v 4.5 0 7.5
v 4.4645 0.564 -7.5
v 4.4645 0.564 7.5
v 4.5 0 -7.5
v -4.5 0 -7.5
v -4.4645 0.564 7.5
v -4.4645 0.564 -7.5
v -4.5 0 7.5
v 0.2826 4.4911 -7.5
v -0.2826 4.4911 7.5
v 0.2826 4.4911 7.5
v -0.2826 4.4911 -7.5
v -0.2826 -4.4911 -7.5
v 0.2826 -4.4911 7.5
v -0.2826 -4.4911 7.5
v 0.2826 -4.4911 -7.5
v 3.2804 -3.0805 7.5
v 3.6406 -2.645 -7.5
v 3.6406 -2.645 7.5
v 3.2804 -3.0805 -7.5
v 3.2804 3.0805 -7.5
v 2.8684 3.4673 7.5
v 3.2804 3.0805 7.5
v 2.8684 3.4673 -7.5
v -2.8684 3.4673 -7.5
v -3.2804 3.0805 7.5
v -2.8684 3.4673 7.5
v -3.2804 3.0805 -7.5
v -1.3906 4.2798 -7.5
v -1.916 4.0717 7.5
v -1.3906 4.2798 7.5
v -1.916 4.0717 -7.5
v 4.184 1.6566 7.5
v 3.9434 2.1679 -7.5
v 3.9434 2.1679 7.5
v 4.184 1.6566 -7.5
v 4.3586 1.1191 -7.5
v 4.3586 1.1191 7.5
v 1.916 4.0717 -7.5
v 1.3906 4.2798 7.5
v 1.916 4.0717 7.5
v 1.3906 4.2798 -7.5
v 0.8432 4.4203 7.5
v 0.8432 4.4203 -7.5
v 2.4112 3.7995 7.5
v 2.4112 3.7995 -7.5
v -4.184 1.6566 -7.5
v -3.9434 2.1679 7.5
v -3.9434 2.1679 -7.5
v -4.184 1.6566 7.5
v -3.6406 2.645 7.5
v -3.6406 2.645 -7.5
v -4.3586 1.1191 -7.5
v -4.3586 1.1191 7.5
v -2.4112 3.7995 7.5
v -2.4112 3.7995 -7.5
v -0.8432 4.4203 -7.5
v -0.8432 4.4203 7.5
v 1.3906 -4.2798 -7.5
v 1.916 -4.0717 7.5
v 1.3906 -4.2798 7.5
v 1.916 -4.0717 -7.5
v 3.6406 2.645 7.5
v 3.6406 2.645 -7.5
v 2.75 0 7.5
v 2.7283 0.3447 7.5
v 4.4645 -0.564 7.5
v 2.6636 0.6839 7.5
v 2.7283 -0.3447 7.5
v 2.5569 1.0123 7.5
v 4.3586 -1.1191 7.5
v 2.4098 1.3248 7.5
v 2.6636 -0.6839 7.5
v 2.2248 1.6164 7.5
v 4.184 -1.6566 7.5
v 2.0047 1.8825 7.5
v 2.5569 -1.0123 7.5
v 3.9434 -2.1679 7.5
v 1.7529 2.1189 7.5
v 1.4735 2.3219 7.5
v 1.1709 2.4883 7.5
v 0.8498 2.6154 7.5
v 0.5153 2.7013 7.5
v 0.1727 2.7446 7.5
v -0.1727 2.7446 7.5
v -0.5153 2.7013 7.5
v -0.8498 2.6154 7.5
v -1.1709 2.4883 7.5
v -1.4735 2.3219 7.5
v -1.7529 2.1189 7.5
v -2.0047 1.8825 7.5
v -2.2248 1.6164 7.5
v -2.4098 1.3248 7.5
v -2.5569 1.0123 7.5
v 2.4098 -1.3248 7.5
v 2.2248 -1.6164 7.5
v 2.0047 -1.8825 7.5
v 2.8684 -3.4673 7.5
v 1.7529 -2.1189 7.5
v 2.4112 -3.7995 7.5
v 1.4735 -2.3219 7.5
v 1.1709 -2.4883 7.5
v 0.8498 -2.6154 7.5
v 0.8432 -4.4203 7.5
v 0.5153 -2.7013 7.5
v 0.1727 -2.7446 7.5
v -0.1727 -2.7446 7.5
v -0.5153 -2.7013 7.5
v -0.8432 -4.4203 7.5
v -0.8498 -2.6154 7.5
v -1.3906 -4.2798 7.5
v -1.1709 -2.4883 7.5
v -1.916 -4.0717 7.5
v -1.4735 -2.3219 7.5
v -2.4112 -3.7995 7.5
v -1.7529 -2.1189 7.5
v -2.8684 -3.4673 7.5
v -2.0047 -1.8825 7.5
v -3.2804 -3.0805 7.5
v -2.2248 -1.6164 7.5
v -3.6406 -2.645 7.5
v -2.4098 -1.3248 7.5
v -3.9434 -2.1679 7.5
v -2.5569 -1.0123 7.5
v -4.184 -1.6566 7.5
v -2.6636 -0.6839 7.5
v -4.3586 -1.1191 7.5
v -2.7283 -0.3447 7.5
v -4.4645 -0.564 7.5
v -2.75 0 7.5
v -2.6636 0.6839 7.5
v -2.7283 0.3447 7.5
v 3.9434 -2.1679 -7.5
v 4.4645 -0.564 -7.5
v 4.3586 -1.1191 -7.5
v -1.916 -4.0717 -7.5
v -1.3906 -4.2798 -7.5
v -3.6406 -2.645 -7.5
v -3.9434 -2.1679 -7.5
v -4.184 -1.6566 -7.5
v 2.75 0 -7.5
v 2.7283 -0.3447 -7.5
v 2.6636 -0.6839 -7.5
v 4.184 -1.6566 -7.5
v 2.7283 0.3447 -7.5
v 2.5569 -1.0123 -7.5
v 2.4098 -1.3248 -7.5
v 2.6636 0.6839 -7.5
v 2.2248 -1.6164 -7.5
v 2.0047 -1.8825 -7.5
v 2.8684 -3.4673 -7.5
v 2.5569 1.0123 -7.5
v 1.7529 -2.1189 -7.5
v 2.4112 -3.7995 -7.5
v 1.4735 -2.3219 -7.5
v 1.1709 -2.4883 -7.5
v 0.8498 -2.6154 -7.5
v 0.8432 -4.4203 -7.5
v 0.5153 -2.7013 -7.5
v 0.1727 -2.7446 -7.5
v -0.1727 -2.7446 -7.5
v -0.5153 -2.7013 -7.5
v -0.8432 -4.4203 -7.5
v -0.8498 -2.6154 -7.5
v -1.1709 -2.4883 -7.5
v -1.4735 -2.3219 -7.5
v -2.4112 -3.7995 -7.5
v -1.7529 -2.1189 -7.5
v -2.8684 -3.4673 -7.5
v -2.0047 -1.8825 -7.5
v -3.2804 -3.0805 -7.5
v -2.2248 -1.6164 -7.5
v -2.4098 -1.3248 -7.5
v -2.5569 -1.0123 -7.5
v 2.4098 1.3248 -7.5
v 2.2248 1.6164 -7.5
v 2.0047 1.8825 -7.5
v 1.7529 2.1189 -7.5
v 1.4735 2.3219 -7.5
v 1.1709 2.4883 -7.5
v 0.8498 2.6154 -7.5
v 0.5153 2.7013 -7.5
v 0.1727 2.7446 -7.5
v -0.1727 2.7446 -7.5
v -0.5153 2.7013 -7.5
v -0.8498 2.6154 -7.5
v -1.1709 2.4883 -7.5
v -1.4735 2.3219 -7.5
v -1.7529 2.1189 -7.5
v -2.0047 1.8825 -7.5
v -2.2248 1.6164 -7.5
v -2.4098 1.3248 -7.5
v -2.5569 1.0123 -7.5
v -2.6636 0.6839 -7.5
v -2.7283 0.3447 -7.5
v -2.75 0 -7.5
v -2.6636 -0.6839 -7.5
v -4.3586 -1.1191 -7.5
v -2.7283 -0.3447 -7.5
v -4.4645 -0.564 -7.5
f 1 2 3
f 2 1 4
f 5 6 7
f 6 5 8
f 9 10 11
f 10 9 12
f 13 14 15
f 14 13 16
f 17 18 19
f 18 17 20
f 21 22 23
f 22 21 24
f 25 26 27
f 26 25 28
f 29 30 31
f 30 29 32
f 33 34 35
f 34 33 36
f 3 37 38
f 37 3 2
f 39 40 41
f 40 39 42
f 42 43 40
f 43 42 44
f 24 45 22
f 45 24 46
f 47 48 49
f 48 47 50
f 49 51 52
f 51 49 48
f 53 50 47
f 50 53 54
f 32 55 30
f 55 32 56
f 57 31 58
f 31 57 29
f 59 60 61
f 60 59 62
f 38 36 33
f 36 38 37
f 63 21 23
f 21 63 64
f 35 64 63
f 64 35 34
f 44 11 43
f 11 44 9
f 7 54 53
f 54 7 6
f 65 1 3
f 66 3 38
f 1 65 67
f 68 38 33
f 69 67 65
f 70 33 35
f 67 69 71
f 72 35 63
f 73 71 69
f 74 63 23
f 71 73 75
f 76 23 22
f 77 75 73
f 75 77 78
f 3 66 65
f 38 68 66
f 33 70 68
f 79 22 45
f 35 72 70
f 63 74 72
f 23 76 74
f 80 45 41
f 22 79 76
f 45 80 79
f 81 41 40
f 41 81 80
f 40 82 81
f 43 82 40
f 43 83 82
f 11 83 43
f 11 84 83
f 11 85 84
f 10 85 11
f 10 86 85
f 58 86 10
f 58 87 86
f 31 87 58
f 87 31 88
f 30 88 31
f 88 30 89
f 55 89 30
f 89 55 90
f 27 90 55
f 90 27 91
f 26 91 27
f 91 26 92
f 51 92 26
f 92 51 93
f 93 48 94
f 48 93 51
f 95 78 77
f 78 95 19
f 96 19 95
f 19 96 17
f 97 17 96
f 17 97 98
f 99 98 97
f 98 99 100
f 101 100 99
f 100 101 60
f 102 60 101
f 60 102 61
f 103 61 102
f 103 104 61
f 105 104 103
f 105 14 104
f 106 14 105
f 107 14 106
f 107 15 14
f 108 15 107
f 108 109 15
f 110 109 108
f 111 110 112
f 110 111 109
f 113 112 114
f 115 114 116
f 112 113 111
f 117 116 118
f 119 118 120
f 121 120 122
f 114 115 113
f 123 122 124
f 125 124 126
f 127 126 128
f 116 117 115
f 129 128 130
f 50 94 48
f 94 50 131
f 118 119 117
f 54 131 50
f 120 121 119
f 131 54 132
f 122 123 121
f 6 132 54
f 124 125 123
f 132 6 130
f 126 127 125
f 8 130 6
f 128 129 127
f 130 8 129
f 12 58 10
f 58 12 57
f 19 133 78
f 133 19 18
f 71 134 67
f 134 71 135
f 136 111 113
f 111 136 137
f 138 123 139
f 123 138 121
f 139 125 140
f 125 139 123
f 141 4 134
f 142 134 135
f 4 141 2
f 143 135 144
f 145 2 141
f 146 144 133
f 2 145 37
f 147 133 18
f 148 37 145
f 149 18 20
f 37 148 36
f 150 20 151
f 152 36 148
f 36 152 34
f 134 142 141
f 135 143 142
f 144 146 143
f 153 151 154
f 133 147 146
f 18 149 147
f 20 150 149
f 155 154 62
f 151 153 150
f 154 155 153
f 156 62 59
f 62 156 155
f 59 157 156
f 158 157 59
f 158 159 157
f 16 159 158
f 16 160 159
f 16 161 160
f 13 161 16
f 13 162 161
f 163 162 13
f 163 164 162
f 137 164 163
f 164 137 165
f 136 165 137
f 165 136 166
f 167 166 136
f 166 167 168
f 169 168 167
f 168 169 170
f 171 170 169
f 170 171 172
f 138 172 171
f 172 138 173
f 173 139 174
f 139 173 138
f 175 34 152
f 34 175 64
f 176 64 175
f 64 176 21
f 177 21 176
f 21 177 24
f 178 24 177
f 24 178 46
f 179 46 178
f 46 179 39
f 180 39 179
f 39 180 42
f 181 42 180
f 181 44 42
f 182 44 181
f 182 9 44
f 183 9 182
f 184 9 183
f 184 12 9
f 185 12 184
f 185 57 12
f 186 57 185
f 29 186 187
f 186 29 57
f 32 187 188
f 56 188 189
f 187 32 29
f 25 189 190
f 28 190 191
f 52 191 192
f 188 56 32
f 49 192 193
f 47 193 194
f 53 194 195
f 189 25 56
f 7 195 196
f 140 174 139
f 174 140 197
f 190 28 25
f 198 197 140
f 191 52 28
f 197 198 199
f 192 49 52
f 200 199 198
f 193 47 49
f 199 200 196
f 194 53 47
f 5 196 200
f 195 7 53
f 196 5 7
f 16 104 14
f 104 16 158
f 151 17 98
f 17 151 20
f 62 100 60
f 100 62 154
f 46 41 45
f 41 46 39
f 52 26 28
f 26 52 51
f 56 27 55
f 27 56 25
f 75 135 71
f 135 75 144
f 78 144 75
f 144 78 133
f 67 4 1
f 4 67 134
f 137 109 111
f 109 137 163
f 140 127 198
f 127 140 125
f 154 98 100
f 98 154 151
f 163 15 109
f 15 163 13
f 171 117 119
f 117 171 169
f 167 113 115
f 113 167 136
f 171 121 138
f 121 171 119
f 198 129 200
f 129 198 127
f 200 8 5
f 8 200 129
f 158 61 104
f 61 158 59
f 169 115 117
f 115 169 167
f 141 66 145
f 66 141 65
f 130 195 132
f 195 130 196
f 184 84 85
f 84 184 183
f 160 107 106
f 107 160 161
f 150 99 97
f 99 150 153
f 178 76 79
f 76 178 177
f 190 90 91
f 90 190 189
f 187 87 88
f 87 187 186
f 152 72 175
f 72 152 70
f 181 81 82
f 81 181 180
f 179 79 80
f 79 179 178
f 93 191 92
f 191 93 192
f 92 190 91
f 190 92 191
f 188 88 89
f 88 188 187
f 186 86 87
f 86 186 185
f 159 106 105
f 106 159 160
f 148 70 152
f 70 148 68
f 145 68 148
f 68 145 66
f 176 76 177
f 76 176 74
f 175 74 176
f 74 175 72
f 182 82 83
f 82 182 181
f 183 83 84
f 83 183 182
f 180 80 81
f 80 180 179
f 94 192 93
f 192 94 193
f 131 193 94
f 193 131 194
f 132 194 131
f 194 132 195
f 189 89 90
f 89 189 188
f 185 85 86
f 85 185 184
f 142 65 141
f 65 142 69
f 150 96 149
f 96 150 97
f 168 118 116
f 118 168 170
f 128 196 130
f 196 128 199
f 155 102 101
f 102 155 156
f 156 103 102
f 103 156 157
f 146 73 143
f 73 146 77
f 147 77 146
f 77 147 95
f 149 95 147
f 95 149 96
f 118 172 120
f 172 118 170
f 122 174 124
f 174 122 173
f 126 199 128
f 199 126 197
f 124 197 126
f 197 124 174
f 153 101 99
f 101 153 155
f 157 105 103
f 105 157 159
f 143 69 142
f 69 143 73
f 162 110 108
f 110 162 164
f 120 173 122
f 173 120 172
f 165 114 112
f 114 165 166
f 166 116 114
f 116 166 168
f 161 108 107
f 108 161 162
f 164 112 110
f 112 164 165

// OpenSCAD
$fn = 50;


difference() {
	union() {
		translate(v = [0, 0, -7.5000000000]) {
			cylinder(h = 15, r = 4.5000000000);
		}
	}
	union() {
		translate(v = [0, 0, -100.0000000000]) {
			cylinder(h = 200, r = 2.7500000000);
		}
	}
}
